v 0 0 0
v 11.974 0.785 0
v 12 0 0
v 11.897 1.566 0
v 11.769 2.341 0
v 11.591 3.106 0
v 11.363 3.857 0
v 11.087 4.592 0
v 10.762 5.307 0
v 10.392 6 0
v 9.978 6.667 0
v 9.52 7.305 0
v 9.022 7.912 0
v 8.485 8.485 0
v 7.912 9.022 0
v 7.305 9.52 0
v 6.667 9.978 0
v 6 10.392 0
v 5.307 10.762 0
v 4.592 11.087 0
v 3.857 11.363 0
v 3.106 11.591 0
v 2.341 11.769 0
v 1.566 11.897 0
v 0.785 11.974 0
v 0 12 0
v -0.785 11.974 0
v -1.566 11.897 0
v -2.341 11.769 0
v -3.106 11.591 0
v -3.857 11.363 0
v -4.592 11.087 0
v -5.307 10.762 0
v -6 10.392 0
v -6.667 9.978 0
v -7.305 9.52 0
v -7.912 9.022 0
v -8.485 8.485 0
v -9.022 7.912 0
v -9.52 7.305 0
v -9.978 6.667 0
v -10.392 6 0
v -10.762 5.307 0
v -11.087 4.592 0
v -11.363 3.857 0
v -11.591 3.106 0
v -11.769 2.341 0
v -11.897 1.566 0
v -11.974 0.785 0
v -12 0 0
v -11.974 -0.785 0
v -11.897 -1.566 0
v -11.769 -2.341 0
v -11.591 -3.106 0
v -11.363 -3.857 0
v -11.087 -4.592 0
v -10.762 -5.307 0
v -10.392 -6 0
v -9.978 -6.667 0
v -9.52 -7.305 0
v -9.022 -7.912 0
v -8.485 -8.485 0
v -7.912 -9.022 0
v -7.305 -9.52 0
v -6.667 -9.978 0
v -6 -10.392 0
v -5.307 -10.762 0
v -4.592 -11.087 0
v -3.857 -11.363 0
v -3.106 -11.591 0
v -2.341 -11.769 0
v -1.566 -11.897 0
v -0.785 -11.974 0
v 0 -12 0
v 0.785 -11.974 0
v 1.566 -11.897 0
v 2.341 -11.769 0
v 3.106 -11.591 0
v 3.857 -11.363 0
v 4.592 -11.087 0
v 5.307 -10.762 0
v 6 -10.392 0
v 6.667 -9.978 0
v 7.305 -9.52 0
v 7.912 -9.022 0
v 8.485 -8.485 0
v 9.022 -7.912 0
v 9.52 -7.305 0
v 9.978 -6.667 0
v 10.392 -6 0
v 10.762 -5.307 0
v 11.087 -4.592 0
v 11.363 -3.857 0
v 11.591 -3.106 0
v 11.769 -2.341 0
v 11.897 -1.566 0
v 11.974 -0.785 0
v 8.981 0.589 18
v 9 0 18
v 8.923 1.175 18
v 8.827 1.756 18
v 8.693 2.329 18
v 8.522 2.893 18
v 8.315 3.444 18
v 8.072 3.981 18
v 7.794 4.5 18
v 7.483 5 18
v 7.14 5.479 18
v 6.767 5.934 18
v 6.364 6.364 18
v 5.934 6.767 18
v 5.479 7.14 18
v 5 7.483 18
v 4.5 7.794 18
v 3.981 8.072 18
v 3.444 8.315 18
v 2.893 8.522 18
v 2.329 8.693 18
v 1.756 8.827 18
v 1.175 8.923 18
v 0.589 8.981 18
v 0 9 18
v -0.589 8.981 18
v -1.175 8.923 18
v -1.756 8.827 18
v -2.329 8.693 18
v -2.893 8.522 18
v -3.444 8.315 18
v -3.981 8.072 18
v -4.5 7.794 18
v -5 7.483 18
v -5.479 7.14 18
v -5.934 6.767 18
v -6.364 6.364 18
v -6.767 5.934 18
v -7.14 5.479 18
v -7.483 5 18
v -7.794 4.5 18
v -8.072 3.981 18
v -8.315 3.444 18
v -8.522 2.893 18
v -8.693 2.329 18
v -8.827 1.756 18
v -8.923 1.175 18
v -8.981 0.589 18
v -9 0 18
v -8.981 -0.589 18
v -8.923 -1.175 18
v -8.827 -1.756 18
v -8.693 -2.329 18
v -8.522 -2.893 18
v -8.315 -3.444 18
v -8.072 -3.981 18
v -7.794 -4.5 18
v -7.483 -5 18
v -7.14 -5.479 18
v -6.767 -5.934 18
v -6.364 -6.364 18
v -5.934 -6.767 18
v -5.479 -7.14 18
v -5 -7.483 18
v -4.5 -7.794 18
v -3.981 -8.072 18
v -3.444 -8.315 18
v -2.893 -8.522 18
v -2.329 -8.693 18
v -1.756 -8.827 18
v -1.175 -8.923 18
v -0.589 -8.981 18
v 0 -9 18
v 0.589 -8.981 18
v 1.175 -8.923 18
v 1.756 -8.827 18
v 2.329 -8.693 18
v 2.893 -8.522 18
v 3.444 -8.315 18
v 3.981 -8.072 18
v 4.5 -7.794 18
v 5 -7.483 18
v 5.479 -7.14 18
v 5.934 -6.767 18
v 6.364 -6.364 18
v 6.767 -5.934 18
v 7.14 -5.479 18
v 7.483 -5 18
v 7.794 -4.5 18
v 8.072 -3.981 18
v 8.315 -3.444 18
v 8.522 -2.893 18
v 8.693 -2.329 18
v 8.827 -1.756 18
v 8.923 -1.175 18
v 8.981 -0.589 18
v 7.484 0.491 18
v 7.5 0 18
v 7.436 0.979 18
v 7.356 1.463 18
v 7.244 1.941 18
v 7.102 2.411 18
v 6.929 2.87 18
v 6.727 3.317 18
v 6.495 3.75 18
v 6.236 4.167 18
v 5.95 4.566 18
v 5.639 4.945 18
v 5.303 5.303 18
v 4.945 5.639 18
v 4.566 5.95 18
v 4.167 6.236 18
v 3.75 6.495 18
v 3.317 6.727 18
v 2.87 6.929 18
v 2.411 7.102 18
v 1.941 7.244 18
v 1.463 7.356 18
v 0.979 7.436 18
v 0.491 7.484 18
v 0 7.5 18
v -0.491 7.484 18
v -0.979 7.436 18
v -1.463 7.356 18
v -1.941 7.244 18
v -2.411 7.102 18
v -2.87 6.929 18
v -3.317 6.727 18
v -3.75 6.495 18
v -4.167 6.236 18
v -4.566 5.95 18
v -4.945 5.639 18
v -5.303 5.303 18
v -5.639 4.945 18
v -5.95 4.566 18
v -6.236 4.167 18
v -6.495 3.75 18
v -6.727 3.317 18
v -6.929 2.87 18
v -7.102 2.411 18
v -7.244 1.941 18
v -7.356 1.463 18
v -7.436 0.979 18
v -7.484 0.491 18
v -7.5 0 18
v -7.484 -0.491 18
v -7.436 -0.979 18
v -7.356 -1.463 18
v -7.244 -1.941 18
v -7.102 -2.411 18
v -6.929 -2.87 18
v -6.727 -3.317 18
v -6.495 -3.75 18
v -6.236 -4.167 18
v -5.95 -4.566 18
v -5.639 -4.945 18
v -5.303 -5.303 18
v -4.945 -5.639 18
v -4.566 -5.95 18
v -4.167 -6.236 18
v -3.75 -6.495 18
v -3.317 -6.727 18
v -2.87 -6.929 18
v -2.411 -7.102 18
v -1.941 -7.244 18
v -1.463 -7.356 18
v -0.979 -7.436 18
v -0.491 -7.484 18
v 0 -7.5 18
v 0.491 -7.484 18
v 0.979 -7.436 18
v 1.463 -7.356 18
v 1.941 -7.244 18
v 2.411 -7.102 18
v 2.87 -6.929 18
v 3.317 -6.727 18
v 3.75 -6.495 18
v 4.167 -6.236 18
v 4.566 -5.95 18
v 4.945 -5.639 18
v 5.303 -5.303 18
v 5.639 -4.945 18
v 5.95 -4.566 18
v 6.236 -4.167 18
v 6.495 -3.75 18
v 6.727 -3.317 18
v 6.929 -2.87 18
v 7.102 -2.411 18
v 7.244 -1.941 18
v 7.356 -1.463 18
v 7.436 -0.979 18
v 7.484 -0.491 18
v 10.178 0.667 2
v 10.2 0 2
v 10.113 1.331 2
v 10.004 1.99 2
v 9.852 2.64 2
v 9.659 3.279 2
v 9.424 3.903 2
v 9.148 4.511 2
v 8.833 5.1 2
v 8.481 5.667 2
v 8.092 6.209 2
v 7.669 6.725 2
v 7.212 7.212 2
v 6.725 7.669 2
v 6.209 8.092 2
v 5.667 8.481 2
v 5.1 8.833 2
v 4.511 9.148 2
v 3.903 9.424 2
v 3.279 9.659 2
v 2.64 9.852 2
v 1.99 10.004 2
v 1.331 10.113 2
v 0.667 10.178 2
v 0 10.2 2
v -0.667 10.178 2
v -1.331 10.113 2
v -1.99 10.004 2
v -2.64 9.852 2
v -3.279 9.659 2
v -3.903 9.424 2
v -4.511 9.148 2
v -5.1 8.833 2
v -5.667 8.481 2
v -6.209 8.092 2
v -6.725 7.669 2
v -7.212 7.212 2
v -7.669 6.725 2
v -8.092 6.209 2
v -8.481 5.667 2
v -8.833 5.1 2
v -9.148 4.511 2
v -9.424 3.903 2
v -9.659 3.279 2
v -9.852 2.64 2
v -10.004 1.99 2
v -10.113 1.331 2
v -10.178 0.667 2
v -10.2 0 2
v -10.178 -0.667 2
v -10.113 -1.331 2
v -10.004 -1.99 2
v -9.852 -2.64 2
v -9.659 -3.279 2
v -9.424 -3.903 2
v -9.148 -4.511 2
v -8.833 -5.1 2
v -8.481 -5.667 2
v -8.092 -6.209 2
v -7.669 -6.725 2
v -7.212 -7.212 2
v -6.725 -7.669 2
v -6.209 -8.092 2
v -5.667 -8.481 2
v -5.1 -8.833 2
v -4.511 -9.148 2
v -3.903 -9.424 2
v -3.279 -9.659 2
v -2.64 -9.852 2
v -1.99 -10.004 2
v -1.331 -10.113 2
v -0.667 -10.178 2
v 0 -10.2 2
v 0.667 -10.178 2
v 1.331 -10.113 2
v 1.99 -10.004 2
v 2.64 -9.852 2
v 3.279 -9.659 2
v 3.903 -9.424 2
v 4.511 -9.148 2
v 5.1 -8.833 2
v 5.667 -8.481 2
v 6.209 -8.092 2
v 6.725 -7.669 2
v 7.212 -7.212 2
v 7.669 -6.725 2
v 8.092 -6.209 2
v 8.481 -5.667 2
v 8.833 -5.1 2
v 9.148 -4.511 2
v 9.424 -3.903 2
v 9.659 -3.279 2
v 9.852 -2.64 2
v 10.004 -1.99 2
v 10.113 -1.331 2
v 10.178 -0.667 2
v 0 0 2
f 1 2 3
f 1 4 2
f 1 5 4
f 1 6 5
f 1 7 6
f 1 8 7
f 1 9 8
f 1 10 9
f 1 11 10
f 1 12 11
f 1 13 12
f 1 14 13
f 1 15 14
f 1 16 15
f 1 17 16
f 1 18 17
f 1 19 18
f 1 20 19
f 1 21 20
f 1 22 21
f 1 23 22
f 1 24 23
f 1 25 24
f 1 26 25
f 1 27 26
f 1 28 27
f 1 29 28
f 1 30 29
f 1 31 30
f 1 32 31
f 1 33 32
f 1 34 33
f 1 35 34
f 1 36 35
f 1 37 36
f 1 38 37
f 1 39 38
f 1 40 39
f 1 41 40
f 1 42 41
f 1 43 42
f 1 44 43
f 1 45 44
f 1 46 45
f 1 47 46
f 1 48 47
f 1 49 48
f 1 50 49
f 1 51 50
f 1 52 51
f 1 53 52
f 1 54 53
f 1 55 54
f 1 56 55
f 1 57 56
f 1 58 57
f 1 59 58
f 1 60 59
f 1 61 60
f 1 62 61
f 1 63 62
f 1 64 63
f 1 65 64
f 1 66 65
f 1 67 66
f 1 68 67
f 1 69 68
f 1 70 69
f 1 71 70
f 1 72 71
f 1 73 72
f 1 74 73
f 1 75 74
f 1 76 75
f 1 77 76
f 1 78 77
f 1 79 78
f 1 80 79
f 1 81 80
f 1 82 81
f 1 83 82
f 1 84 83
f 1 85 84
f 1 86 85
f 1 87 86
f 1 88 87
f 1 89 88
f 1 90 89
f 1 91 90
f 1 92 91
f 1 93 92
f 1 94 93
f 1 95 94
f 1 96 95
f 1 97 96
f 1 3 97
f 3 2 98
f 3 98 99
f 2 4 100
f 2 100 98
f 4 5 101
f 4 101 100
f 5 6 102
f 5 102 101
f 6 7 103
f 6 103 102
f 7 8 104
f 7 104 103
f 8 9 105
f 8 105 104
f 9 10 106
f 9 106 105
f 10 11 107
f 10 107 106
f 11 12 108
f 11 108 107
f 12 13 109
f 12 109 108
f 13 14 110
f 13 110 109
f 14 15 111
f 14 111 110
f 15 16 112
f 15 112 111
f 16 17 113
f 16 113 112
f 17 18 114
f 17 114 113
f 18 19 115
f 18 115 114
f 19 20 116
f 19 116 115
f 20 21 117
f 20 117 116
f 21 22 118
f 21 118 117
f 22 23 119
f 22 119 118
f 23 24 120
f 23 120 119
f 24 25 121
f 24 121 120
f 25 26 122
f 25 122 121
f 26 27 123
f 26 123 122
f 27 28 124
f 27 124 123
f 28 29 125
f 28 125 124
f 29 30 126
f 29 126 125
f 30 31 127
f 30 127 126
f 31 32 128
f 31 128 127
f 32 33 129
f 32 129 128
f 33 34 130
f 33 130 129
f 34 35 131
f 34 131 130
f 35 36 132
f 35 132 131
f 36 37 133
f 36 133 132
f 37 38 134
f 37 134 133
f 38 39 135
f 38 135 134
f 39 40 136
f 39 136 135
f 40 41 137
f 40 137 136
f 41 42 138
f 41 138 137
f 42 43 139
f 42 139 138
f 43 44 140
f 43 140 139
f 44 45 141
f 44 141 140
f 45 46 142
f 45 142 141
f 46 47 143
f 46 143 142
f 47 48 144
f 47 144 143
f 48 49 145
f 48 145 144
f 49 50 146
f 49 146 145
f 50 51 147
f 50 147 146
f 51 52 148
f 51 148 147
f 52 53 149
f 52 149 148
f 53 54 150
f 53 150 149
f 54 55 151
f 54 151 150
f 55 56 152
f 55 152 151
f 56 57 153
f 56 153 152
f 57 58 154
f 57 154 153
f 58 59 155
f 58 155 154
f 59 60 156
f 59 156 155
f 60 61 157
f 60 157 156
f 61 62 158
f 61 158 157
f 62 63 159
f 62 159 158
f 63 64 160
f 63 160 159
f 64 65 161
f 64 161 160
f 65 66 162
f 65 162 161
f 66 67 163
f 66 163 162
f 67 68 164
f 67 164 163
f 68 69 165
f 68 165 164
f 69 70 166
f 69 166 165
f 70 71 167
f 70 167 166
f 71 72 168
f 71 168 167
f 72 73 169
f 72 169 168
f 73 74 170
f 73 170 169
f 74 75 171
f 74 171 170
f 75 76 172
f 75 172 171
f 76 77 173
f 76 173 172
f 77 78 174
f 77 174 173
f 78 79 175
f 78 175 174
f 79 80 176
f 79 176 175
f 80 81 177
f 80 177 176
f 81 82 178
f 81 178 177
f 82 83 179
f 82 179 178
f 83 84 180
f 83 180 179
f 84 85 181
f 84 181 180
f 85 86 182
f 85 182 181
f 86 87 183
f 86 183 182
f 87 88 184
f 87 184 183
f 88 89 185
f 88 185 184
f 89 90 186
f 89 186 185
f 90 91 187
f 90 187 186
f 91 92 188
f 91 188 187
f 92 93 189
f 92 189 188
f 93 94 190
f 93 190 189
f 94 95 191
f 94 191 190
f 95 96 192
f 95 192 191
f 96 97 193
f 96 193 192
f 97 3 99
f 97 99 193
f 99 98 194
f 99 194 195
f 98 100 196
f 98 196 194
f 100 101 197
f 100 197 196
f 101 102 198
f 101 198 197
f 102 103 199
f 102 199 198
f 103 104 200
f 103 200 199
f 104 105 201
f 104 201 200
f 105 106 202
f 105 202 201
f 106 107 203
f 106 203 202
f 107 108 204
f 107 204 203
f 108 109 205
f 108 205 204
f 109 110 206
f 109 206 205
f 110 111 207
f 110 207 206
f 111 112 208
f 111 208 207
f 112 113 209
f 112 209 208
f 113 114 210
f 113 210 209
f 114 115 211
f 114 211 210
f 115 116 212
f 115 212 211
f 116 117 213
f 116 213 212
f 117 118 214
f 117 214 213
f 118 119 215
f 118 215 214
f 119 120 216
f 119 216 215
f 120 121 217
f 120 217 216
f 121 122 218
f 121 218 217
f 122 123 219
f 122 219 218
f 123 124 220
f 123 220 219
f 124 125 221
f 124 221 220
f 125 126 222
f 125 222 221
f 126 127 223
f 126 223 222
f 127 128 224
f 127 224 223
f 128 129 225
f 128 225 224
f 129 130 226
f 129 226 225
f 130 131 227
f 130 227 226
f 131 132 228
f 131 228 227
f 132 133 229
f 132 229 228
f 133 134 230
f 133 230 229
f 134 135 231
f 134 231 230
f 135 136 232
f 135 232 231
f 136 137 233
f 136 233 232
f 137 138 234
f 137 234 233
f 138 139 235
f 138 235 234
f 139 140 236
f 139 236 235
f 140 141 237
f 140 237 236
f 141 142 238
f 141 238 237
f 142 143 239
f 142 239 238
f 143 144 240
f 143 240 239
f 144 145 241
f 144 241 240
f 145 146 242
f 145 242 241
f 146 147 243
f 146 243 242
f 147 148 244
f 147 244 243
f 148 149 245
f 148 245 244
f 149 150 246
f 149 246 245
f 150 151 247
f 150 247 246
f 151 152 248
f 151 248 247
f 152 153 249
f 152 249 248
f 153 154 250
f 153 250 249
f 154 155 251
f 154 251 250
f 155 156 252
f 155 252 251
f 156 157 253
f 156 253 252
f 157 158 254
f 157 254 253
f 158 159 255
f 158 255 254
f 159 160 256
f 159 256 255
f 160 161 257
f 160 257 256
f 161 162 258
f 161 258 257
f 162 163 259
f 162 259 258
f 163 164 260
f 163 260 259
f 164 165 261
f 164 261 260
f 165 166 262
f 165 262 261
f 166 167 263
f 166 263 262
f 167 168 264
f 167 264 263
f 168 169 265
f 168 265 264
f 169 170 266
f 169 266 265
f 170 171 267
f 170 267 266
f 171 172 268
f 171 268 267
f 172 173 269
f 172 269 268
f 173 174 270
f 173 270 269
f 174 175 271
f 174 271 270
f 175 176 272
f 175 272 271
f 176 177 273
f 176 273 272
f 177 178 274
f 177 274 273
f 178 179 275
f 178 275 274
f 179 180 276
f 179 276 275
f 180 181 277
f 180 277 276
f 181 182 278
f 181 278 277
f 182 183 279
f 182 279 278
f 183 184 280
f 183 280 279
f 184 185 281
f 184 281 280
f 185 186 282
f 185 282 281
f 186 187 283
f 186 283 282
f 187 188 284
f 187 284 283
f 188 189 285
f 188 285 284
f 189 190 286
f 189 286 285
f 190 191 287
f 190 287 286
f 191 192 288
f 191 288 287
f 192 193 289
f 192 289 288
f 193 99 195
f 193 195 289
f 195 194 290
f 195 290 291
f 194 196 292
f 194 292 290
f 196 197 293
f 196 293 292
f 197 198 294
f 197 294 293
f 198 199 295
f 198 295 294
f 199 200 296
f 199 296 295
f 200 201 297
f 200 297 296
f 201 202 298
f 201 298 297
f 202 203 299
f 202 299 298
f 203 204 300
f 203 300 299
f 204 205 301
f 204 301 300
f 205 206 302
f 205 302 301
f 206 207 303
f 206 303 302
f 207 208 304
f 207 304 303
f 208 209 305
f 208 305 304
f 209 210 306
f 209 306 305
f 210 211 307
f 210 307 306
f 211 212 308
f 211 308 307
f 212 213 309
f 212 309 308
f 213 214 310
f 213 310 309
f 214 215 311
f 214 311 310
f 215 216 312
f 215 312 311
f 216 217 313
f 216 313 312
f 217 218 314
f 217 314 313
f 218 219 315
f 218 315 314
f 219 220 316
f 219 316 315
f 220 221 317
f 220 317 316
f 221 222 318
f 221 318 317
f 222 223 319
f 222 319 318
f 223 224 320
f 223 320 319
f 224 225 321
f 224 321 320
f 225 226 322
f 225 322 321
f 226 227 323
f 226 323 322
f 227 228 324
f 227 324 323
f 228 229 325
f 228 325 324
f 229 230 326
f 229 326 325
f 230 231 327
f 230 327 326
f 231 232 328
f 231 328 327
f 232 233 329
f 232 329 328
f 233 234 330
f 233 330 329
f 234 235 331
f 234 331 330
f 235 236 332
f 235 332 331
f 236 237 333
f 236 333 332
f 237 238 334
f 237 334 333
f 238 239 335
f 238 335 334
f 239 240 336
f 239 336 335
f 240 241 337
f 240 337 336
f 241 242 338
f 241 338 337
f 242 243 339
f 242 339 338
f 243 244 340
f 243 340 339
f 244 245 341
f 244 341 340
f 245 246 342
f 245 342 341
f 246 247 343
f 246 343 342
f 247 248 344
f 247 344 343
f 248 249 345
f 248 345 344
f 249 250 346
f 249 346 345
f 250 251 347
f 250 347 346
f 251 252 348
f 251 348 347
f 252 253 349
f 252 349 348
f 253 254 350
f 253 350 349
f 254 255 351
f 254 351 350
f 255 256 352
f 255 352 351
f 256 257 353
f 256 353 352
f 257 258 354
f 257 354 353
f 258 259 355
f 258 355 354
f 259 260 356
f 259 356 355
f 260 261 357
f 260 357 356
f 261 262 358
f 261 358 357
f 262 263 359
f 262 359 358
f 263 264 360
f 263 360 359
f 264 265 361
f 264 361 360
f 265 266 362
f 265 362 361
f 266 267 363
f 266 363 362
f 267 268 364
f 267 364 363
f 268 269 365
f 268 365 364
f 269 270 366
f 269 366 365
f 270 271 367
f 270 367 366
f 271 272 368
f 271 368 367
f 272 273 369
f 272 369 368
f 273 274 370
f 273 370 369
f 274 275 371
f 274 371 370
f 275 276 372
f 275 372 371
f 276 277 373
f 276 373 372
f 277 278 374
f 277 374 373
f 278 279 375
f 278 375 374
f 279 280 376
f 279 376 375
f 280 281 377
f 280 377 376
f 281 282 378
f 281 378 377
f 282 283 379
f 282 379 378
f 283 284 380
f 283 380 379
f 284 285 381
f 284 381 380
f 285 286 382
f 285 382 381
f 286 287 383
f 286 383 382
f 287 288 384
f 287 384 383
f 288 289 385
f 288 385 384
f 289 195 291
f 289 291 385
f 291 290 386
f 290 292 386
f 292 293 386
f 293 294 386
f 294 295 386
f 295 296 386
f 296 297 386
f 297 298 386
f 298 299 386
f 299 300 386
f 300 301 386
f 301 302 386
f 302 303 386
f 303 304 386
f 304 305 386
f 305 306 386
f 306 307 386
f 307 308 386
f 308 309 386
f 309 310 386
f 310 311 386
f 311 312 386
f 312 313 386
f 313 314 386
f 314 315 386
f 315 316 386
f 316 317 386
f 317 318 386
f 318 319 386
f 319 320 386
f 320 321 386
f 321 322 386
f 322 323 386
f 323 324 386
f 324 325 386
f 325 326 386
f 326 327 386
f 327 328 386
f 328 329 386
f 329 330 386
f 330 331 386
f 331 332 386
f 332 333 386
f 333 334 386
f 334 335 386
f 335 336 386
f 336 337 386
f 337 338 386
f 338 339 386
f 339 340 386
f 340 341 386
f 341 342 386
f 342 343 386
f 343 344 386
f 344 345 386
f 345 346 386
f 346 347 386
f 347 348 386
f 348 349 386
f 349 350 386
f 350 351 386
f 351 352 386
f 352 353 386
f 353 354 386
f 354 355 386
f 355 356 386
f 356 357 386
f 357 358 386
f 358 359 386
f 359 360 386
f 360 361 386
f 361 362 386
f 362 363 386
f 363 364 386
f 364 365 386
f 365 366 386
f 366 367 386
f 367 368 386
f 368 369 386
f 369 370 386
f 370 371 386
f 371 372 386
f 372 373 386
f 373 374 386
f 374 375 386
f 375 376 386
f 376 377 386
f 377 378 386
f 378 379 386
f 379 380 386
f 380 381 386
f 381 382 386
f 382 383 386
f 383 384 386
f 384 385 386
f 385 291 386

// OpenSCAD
// Original MechIntel educational model. CC0-1.0. Units: mm.
// Not a standardized or load-rated component.
$fn=96;
// Section points: [radius, height], mm. Edit to change the profile.
section=[[0, 0], [12, 0], [9, 18], [7.5, 18], [10.2, 2], [0, 2]];
rotate_extrude($fn=96) polygon(points=section);
